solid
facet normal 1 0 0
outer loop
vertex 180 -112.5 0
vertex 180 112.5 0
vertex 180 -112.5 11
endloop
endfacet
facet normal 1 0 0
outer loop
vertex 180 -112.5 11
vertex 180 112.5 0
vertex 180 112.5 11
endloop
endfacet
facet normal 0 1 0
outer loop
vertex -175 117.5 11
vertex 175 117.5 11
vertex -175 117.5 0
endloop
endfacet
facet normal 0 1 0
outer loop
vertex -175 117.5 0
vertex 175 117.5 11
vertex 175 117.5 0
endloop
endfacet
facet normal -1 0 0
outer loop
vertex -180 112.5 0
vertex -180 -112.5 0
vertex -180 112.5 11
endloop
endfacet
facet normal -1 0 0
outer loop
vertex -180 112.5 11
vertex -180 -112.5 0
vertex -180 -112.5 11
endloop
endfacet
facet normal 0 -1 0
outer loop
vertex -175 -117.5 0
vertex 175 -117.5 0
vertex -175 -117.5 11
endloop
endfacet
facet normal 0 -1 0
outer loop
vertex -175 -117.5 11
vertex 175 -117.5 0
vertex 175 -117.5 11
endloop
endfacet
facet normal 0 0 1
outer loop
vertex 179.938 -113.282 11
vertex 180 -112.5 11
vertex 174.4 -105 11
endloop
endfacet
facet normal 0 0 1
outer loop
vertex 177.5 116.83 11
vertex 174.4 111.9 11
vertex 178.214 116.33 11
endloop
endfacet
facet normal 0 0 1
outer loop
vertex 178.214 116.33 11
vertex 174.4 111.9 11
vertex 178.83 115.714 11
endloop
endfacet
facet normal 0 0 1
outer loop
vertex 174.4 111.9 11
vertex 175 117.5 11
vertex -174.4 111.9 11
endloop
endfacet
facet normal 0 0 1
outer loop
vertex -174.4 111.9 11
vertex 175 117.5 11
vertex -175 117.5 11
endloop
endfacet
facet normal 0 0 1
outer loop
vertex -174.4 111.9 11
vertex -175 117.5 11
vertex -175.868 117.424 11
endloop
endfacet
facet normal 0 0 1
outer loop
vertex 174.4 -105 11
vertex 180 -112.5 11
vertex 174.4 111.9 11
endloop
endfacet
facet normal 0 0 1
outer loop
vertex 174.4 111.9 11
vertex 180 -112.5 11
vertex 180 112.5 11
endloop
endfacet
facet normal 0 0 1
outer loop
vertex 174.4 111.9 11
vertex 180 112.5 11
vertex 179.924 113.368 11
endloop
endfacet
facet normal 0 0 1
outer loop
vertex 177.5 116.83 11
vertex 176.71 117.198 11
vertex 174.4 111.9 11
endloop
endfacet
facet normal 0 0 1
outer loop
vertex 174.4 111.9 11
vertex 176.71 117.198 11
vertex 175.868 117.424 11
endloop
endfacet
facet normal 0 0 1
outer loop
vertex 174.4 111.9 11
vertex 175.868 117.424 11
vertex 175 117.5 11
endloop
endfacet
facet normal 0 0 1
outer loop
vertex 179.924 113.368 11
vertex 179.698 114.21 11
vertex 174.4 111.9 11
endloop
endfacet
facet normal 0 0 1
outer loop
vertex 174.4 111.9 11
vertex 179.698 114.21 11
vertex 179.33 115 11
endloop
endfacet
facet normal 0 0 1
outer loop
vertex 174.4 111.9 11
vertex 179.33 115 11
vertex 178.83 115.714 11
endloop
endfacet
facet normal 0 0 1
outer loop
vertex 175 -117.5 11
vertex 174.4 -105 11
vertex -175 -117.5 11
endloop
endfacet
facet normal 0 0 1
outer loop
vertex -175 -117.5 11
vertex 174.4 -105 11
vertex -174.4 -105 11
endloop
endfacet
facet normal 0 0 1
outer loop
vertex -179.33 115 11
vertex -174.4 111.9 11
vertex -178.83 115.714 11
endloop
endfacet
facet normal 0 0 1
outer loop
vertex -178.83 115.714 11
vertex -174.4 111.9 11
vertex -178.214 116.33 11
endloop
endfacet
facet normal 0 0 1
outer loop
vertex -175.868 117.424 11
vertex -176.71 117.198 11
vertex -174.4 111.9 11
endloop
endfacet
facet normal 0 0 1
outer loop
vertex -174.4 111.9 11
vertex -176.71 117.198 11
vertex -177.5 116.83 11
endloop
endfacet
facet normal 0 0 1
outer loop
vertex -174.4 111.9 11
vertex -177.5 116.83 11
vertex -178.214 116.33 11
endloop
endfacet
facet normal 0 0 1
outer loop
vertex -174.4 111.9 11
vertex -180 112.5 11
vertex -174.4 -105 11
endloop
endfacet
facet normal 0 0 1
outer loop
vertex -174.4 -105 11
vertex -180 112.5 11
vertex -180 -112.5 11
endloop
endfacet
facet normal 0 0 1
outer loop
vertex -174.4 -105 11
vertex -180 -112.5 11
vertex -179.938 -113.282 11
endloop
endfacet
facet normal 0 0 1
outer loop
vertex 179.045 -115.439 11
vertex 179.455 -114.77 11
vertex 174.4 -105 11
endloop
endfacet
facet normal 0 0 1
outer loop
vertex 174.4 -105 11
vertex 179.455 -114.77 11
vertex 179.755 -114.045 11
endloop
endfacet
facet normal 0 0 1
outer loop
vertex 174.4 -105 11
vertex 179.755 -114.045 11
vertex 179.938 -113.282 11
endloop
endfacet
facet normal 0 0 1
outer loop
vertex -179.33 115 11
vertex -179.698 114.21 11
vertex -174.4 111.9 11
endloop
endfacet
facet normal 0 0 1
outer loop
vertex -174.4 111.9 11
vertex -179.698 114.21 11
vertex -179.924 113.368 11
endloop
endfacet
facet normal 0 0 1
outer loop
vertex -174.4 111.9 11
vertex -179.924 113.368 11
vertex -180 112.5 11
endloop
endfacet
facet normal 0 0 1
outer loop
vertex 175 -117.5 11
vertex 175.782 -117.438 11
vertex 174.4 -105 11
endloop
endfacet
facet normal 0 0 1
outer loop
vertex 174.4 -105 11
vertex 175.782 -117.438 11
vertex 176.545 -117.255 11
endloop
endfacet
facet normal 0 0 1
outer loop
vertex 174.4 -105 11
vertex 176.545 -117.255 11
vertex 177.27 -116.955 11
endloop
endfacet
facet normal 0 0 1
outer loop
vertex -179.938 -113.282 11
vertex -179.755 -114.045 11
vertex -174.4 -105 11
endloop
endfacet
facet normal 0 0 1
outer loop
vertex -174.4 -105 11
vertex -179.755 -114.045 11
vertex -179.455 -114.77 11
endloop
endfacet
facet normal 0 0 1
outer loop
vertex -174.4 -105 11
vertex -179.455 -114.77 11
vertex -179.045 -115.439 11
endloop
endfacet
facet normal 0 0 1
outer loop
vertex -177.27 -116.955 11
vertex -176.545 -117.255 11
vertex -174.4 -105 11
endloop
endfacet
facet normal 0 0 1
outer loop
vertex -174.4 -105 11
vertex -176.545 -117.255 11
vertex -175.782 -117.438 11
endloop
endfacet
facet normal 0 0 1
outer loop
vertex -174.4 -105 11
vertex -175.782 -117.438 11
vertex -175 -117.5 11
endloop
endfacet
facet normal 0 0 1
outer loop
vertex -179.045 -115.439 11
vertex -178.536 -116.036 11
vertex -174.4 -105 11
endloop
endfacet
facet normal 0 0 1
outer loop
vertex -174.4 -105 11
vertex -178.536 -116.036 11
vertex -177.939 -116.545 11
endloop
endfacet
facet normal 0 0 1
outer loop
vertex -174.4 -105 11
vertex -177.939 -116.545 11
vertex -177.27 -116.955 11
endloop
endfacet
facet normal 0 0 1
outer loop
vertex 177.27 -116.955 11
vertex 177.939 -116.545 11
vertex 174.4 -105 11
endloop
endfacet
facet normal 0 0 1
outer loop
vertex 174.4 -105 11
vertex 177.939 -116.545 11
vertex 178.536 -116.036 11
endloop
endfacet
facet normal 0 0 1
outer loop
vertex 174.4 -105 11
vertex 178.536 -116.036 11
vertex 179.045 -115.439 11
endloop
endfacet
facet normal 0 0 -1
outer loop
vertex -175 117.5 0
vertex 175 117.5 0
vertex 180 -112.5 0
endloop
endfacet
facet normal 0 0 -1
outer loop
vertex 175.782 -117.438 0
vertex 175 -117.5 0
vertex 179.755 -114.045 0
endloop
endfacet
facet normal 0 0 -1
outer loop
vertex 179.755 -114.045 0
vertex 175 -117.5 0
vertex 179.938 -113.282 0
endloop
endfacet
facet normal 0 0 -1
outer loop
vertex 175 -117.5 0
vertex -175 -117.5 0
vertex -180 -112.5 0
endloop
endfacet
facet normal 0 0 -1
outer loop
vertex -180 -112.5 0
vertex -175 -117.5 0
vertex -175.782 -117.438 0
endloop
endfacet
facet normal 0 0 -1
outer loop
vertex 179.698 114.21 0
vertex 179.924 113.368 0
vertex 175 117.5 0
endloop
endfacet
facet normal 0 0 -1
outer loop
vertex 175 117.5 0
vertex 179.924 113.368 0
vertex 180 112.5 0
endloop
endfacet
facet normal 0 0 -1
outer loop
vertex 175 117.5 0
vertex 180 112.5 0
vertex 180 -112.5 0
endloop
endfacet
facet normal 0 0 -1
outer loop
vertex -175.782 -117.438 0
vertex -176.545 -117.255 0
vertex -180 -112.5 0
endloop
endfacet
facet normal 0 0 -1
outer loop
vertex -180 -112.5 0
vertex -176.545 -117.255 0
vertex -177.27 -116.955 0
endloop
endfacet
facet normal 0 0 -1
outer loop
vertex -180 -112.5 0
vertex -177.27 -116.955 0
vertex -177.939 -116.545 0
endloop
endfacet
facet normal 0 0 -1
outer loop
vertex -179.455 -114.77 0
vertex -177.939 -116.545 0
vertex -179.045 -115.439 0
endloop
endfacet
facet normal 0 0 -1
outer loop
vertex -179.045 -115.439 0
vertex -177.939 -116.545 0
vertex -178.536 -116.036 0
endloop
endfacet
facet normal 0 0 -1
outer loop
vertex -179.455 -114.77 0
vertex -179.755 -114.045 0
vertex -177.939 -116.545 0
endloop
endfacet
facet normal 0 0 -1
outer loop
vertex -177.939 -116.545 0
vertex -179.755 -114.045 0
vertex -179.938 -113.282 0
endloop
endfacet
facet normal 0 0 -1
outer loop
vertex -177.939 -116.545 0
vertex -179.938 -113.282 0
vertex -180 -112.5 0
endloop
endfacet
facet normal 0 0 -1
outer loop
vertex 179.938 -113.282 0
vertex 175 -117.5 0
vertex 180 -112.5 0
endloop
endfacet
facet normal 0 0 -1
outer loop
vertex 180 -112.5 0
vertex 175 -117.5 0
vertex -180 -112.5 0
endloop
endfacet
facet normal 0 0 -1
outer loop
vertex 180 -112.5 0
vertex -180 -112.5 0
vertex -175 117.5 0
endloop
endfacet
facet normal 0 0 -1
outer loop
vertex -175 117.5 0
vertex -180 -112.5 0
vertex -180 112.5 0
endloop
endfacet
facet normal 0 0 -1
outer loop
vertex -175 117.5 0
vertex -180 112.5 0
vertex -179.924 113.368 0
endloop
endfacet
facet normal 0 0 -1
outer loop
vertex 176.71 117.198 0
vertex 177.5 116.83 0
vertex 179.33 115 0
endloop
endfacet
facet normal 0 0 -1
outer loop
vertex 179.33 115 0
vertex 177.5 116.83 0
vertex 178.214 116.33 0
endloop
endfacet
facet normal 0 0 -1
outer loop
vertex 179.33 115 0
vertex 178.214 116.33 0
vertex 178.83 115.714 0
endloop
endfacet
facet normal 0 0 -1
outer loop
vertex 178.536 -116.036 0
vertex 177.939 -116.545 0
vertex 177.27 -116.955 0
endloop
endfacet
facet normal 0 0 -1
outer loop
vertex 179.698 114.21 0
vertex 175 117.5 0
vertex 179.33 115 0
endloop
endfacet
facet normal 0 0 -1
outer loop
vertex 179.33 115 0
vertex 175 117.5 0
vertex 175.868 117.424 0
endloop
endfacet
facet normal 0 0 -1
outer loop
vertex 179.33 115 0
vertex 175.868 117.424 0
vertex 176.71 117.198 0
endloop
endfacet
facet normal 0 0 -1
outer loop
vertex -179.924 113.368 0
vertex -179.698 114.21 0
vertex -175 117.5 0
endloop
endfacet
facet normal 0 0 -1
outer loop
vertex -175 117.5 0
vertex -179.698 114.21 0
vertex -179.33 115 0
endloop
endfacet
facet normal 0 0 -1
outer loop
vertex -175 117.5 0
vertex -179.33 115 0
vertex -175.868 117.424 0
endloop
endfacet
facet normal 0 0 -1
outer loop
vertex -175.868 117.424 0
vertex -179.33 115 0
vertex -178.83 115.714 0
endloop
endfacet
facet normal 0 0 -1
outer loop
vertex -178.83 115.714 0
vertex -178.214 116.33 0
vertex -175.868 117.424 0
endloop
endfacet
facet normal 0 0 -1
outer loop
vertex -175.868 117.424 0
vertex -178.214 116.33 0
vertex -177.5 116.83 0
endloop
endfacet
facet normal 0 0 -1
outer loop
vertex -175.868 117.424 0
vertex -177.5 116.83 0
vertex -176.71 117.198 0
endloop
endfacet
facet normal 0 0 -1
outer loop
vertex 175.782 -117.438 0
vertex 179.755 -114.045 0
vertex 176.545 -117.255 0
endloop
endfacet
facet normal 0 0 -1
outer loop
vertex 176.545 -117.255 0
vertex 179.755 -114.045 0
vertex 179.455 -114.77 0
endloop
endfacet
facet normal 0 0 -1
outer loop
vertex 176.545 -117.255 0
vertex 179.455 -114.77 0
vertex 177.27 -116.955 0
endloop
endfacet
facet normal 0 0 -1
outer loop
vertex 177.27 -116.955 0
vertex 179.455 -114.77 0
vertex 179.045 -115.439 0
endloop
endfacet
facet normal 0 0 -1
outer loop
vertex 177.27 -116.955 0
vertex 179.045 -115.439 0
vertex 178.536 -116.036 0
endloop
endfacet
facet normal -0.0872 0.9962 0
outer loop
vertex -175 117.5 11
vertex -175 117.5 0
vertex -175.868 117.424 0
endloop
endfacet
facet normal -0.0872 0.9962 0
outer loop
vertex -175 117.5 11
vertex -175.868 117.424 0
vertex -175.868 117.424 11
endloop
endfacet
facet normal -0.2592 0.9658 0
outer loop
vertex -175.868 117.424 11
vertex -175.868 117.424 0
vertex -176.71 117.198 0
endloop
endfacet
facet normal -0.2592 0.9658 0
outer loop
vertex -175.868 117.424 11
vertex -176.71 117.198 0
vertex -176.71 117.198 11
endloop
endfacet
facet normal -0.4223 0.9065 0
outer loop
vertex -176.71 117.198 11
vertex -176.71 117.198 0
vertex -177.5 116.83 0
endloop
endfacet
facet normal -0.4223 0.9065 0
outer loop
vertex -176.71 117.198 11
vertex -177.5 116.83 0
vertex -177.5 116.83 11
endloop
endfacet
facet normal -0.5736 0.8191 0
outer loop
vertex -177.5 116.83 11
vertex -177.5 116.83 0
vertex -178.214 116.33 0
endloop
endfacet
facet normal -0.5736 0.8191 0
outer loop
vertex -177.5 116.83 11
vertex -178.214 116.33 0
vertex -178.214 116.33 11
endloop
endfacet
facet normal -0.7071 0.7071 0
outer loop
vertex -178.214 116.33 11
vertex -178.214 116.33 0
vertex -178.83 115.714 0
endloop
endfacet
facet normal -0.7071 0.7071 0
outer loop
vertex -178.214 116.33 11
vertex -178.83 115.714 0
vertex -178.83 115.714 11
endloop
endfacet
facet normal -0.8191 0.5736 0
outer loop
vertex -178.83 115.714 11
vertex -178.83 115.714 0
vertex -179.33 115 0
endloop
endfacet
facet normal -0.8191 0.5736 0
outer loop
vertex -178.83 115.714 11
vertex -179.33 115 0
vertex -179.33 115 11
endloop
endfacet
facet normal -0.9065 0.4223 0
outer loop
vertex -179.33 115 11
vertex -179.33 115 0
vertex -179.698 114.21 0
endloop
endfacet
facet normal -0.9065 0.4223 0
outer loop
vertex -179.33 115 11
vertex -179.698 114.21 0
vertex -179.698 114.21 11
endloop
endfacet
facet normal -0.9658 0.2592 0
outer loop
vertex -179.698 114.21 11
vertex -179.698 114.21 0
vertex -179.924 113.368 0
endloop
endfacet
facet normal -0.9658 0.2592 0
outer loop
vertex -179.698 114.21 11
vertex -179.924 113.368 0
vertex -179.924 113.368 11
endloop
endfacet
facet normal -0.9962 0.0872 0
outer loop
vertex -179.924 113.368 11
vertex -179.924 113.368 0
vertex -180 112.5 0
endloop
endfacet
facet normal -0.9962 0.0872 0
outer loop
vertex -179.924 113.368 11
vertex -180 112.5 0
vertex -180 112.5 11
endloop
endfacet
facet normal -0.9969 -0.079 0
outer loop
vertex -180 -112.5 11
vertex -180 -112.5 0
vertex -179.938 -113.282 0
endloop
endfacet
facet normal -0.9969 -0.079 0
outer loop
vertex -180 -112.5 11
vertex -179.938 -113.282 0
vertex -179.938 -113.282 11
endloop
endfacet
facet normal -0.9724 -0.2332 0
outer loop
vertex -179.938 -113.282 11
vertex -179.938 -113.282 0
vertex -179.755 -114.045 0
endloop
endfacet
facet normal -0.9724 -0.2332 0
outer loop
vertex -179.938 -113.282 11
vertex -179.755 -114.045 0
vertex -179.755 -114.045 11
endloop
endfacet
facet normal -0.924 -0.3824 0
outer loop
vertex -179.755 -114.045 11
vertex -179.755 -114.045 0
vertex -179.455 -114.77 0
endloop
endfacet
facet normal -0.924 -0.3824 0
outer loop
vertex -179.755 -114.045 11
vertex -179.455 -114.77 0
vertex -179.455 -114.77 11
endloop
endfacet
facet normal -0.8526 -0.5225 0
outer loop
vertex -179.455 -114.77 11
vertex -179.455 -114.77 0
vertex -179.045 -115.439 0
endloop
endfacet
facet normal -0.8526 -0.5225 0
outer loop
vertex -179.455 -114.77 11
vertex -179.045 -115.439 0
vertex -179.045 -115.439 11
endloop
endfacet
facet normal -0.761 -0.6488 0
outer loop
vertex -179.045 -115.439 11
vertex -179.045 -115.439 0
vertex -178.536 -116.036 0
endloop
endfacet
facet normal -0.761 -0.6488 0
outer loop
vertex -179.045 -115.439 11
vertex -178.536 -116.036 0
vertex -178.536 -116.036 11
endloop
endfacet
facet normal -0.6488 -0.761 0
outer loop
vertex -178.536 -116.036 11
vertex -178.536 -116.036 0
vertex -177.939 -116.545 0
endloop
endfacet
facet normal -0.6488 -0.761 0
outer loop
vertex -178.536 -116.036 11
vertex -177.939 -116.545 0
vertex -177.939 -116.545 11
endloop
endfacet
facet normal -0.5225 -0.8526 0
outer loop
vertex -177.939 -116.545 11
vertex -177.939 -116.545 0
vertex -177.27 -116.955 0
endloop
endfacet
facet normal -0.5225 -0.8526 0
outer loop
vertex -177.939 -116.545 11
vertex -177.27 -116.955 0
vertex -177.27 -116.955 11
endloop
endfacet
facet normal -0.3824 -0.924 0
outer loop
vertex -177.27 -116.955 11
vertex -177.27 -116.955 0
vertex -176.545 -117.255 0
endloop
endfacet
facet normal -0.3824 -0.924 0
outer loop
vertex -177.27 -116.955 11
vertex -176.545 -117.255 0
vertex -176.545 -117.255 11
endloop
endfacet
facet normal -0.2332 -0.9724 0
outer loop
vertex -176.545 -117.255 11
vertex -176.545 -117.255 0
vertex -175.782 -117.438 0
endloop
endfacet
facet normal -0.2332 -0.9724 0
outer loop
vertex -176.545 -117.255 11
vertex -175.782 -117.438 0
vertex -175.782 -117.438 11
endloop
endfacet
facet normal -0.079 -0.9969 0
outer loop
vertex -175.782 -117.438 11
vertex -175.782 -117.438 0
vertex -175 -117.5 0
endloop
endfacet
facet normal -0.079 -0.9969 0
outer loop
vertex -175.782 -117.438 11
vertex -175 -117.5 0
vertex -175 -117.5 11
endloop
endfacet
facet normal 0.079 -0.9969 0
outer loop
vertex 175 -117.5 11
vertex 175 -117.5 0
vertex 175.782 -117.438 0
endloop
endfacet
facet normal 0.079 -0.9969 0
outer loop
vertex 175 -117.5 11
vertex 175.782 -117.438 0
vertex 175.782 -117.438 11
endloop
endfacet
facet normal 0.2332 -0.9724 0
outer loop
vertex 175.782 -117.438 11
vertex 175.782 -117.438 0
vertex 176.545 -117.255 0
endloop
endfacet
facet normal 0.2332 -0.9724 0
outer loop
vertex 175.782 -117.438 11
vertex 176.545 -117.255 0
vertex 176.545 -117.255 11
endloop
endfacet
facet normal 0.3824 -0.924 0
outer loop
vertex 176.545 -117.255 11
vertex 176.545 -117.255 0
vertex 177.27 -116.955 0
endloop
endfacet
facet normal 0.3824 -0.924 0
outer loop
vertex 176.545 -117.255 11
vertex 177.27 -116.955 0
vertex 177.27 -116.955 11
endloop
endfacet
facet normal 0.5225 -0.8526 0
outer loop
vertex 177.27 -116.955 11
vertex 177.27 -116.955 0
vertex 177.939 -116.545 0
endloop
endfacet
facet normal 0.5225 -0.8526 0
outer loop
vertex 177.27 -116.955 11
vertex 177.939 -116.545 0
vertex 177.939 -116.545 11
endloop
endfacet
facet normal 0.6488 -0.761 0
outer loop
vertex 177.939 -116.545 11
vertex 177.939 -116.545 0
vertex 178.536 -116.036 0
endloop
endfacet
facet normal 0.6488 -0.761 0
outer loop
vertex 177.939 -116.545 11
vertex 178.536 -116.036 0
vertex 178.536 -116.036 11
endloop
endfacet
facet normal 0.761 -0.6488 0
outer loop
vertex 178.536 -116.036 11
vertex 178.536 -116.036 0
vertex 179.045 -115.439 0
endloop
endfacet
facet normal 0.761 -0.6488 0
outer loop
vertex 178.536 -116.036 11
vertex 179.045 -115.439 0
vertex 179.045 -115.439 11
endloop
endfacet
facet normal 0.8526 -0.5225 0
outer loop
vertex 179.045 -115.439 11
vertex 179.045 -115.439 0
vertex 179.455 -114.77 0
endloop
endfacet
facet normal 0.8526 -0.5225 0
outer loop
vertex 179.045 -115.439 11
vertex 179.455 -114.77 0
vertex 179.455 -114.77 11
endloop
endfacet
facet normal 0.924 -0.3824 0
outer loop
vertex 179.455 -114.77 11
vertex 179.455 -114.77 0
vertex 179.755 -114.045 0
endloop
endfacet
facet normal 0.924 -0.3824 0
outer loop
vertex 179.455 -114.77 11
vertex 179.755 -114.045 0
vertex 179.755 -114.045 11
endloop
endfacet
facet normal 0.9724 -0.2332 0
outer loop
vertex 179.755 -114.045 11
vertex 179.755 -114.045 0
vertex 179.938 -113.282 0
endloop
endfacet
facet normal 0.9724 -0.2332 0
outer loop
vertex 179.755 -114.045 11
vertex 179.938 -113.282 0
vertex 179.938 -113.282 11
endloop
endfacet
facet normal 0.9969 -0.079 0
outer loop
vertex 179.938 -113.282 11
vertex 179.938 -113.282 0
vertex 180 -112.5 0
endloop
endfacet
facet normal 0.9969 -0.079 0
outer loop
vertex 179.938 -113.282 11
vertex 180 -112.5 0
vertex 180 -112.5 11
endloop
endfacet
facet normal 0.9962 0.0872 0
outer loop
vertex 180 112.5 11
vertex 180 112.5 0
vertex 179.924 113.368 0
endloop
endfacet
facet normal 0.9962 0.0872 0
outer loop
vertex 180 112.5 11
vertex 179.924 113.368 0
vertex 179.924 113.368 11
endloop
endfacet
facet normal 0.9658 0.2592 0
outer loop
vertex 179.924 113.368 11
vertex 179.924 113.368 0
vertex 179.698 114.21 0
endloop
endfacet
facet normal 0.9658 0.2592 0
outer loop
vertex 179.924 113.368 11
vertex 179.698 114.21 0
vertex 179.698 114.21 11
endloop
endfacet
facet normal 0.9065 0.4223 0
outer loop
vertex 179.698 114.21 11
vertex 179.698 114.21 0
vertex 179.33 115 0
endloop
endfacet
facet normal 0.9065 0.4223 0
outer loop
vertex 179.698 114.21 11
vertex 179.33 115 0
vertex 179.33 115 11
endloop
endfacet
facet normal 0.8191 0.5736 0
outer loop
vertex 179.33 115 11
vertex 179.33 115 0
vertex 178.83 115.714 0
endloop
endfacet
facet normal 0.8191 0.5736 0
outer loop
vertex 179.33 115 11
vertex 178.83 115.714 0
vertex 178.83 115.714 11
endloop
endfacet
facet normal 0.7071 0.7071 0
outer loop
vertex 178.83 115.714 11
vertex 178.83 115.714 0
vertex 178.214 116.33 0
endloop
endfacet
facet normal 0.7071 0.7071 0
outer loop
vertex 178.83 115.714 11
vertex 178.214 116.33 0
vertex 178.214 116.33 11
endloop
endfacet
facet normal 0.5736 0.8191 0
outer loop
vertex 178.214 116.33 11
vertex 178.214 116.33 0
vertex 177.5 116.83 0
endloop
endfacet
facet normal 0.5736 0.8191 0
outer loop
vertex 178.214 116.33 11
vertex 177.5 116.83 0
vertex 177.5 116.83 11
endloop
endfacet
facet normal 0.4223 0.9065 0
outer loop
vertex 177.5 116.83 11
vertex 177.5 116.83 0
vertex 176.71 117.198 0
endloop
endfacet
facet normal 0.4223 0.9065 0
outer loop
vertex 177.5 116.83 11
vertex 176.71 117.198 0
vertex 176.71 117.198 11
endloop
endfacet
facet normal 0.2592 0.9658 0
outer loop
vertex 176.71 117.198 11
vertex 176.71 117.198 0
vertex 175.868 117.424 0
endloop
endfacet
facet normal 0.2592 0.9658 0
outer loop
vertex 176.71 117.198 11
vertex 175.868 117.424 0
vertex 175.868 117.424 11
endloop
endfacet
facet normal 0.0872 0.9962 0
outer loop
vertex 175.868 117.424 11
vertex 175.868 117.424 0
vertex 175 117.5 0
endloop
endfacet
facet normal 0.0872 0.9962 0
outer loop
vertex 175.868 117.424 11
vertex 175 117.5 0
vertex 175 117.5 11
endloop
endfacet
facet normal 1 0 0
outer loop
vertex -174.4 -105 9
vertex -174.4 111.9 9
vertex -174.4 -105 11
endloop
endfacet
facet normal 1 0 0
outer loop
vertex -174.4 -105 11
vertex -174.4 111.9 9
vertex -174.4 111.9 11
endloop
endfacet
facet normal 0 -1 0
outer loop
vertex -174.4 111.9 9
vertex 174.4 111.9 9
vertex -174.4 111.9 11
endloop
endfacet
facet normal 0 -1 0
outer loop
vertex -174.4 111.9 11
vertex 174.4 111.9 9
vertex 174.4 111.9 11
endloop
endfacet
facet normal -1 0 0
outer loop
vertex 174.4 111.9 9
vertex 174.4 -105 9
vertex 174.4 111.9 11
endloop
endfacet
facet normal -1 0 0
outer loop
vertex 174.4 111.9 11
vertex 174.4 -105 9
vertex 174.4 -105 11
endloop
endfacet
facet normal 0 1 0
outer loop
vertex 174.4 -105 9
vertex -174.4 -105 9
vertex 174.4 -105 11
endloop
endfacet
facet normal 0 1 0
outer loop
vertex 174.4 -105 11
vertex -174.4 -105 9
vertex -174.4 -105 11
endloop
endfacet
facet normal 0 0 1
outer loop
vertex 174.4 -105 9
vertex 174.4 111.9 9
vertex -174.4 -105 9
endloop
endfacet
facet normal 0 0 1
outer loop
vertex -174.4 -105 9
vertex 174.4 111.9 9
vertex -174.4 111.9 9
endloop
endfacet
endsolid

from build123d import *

# Parameters (mm, degrees)
SKETCH1_W           = 360
SKETCH1_H           = 235
BOSS_EXTRUDE1_DEPTH = 11
FILLET1_R           = 5
SKETCH2_W           = 348.8
SKETCH2_H           = 216.9
CUT_EXTRUDE1_DEPTH  = 2


with BuildPart() as part:
    # Sketch1 → Boss-Extrude1 (new body)
    with BuildSketch(Plane.XY):
        Rectangle(SKETCH1_W, SKETCH1_H)
    extrude(amount=BOSS_EXTRUDE1_DEPTH)

    # Fillet1
    fillet1_edges = [part.edges().sort_by_distance(p)[0] for p in [
        (180, -117.5, 5.5),
        (-180, -117.5, 5.5),
        (-180, 117.5, 5.5),
        (180, 117.5, 5.5),
    ]]
    fillet(fillet1_edges, radius=FILLET1_R)

    # Sketch2 → Cut-Extrude1 (cut)
    with BuildSketch(Plane.XY.offset(11)):
        with Locations((0, 3.45)):
            Rectangle(SKETCH2_W, SKETCH2_H)
    extrude(amount=-CUT_EXTRUDE1_DEPTH, mode=Mode.SUBTRACT)


solid = part.part
